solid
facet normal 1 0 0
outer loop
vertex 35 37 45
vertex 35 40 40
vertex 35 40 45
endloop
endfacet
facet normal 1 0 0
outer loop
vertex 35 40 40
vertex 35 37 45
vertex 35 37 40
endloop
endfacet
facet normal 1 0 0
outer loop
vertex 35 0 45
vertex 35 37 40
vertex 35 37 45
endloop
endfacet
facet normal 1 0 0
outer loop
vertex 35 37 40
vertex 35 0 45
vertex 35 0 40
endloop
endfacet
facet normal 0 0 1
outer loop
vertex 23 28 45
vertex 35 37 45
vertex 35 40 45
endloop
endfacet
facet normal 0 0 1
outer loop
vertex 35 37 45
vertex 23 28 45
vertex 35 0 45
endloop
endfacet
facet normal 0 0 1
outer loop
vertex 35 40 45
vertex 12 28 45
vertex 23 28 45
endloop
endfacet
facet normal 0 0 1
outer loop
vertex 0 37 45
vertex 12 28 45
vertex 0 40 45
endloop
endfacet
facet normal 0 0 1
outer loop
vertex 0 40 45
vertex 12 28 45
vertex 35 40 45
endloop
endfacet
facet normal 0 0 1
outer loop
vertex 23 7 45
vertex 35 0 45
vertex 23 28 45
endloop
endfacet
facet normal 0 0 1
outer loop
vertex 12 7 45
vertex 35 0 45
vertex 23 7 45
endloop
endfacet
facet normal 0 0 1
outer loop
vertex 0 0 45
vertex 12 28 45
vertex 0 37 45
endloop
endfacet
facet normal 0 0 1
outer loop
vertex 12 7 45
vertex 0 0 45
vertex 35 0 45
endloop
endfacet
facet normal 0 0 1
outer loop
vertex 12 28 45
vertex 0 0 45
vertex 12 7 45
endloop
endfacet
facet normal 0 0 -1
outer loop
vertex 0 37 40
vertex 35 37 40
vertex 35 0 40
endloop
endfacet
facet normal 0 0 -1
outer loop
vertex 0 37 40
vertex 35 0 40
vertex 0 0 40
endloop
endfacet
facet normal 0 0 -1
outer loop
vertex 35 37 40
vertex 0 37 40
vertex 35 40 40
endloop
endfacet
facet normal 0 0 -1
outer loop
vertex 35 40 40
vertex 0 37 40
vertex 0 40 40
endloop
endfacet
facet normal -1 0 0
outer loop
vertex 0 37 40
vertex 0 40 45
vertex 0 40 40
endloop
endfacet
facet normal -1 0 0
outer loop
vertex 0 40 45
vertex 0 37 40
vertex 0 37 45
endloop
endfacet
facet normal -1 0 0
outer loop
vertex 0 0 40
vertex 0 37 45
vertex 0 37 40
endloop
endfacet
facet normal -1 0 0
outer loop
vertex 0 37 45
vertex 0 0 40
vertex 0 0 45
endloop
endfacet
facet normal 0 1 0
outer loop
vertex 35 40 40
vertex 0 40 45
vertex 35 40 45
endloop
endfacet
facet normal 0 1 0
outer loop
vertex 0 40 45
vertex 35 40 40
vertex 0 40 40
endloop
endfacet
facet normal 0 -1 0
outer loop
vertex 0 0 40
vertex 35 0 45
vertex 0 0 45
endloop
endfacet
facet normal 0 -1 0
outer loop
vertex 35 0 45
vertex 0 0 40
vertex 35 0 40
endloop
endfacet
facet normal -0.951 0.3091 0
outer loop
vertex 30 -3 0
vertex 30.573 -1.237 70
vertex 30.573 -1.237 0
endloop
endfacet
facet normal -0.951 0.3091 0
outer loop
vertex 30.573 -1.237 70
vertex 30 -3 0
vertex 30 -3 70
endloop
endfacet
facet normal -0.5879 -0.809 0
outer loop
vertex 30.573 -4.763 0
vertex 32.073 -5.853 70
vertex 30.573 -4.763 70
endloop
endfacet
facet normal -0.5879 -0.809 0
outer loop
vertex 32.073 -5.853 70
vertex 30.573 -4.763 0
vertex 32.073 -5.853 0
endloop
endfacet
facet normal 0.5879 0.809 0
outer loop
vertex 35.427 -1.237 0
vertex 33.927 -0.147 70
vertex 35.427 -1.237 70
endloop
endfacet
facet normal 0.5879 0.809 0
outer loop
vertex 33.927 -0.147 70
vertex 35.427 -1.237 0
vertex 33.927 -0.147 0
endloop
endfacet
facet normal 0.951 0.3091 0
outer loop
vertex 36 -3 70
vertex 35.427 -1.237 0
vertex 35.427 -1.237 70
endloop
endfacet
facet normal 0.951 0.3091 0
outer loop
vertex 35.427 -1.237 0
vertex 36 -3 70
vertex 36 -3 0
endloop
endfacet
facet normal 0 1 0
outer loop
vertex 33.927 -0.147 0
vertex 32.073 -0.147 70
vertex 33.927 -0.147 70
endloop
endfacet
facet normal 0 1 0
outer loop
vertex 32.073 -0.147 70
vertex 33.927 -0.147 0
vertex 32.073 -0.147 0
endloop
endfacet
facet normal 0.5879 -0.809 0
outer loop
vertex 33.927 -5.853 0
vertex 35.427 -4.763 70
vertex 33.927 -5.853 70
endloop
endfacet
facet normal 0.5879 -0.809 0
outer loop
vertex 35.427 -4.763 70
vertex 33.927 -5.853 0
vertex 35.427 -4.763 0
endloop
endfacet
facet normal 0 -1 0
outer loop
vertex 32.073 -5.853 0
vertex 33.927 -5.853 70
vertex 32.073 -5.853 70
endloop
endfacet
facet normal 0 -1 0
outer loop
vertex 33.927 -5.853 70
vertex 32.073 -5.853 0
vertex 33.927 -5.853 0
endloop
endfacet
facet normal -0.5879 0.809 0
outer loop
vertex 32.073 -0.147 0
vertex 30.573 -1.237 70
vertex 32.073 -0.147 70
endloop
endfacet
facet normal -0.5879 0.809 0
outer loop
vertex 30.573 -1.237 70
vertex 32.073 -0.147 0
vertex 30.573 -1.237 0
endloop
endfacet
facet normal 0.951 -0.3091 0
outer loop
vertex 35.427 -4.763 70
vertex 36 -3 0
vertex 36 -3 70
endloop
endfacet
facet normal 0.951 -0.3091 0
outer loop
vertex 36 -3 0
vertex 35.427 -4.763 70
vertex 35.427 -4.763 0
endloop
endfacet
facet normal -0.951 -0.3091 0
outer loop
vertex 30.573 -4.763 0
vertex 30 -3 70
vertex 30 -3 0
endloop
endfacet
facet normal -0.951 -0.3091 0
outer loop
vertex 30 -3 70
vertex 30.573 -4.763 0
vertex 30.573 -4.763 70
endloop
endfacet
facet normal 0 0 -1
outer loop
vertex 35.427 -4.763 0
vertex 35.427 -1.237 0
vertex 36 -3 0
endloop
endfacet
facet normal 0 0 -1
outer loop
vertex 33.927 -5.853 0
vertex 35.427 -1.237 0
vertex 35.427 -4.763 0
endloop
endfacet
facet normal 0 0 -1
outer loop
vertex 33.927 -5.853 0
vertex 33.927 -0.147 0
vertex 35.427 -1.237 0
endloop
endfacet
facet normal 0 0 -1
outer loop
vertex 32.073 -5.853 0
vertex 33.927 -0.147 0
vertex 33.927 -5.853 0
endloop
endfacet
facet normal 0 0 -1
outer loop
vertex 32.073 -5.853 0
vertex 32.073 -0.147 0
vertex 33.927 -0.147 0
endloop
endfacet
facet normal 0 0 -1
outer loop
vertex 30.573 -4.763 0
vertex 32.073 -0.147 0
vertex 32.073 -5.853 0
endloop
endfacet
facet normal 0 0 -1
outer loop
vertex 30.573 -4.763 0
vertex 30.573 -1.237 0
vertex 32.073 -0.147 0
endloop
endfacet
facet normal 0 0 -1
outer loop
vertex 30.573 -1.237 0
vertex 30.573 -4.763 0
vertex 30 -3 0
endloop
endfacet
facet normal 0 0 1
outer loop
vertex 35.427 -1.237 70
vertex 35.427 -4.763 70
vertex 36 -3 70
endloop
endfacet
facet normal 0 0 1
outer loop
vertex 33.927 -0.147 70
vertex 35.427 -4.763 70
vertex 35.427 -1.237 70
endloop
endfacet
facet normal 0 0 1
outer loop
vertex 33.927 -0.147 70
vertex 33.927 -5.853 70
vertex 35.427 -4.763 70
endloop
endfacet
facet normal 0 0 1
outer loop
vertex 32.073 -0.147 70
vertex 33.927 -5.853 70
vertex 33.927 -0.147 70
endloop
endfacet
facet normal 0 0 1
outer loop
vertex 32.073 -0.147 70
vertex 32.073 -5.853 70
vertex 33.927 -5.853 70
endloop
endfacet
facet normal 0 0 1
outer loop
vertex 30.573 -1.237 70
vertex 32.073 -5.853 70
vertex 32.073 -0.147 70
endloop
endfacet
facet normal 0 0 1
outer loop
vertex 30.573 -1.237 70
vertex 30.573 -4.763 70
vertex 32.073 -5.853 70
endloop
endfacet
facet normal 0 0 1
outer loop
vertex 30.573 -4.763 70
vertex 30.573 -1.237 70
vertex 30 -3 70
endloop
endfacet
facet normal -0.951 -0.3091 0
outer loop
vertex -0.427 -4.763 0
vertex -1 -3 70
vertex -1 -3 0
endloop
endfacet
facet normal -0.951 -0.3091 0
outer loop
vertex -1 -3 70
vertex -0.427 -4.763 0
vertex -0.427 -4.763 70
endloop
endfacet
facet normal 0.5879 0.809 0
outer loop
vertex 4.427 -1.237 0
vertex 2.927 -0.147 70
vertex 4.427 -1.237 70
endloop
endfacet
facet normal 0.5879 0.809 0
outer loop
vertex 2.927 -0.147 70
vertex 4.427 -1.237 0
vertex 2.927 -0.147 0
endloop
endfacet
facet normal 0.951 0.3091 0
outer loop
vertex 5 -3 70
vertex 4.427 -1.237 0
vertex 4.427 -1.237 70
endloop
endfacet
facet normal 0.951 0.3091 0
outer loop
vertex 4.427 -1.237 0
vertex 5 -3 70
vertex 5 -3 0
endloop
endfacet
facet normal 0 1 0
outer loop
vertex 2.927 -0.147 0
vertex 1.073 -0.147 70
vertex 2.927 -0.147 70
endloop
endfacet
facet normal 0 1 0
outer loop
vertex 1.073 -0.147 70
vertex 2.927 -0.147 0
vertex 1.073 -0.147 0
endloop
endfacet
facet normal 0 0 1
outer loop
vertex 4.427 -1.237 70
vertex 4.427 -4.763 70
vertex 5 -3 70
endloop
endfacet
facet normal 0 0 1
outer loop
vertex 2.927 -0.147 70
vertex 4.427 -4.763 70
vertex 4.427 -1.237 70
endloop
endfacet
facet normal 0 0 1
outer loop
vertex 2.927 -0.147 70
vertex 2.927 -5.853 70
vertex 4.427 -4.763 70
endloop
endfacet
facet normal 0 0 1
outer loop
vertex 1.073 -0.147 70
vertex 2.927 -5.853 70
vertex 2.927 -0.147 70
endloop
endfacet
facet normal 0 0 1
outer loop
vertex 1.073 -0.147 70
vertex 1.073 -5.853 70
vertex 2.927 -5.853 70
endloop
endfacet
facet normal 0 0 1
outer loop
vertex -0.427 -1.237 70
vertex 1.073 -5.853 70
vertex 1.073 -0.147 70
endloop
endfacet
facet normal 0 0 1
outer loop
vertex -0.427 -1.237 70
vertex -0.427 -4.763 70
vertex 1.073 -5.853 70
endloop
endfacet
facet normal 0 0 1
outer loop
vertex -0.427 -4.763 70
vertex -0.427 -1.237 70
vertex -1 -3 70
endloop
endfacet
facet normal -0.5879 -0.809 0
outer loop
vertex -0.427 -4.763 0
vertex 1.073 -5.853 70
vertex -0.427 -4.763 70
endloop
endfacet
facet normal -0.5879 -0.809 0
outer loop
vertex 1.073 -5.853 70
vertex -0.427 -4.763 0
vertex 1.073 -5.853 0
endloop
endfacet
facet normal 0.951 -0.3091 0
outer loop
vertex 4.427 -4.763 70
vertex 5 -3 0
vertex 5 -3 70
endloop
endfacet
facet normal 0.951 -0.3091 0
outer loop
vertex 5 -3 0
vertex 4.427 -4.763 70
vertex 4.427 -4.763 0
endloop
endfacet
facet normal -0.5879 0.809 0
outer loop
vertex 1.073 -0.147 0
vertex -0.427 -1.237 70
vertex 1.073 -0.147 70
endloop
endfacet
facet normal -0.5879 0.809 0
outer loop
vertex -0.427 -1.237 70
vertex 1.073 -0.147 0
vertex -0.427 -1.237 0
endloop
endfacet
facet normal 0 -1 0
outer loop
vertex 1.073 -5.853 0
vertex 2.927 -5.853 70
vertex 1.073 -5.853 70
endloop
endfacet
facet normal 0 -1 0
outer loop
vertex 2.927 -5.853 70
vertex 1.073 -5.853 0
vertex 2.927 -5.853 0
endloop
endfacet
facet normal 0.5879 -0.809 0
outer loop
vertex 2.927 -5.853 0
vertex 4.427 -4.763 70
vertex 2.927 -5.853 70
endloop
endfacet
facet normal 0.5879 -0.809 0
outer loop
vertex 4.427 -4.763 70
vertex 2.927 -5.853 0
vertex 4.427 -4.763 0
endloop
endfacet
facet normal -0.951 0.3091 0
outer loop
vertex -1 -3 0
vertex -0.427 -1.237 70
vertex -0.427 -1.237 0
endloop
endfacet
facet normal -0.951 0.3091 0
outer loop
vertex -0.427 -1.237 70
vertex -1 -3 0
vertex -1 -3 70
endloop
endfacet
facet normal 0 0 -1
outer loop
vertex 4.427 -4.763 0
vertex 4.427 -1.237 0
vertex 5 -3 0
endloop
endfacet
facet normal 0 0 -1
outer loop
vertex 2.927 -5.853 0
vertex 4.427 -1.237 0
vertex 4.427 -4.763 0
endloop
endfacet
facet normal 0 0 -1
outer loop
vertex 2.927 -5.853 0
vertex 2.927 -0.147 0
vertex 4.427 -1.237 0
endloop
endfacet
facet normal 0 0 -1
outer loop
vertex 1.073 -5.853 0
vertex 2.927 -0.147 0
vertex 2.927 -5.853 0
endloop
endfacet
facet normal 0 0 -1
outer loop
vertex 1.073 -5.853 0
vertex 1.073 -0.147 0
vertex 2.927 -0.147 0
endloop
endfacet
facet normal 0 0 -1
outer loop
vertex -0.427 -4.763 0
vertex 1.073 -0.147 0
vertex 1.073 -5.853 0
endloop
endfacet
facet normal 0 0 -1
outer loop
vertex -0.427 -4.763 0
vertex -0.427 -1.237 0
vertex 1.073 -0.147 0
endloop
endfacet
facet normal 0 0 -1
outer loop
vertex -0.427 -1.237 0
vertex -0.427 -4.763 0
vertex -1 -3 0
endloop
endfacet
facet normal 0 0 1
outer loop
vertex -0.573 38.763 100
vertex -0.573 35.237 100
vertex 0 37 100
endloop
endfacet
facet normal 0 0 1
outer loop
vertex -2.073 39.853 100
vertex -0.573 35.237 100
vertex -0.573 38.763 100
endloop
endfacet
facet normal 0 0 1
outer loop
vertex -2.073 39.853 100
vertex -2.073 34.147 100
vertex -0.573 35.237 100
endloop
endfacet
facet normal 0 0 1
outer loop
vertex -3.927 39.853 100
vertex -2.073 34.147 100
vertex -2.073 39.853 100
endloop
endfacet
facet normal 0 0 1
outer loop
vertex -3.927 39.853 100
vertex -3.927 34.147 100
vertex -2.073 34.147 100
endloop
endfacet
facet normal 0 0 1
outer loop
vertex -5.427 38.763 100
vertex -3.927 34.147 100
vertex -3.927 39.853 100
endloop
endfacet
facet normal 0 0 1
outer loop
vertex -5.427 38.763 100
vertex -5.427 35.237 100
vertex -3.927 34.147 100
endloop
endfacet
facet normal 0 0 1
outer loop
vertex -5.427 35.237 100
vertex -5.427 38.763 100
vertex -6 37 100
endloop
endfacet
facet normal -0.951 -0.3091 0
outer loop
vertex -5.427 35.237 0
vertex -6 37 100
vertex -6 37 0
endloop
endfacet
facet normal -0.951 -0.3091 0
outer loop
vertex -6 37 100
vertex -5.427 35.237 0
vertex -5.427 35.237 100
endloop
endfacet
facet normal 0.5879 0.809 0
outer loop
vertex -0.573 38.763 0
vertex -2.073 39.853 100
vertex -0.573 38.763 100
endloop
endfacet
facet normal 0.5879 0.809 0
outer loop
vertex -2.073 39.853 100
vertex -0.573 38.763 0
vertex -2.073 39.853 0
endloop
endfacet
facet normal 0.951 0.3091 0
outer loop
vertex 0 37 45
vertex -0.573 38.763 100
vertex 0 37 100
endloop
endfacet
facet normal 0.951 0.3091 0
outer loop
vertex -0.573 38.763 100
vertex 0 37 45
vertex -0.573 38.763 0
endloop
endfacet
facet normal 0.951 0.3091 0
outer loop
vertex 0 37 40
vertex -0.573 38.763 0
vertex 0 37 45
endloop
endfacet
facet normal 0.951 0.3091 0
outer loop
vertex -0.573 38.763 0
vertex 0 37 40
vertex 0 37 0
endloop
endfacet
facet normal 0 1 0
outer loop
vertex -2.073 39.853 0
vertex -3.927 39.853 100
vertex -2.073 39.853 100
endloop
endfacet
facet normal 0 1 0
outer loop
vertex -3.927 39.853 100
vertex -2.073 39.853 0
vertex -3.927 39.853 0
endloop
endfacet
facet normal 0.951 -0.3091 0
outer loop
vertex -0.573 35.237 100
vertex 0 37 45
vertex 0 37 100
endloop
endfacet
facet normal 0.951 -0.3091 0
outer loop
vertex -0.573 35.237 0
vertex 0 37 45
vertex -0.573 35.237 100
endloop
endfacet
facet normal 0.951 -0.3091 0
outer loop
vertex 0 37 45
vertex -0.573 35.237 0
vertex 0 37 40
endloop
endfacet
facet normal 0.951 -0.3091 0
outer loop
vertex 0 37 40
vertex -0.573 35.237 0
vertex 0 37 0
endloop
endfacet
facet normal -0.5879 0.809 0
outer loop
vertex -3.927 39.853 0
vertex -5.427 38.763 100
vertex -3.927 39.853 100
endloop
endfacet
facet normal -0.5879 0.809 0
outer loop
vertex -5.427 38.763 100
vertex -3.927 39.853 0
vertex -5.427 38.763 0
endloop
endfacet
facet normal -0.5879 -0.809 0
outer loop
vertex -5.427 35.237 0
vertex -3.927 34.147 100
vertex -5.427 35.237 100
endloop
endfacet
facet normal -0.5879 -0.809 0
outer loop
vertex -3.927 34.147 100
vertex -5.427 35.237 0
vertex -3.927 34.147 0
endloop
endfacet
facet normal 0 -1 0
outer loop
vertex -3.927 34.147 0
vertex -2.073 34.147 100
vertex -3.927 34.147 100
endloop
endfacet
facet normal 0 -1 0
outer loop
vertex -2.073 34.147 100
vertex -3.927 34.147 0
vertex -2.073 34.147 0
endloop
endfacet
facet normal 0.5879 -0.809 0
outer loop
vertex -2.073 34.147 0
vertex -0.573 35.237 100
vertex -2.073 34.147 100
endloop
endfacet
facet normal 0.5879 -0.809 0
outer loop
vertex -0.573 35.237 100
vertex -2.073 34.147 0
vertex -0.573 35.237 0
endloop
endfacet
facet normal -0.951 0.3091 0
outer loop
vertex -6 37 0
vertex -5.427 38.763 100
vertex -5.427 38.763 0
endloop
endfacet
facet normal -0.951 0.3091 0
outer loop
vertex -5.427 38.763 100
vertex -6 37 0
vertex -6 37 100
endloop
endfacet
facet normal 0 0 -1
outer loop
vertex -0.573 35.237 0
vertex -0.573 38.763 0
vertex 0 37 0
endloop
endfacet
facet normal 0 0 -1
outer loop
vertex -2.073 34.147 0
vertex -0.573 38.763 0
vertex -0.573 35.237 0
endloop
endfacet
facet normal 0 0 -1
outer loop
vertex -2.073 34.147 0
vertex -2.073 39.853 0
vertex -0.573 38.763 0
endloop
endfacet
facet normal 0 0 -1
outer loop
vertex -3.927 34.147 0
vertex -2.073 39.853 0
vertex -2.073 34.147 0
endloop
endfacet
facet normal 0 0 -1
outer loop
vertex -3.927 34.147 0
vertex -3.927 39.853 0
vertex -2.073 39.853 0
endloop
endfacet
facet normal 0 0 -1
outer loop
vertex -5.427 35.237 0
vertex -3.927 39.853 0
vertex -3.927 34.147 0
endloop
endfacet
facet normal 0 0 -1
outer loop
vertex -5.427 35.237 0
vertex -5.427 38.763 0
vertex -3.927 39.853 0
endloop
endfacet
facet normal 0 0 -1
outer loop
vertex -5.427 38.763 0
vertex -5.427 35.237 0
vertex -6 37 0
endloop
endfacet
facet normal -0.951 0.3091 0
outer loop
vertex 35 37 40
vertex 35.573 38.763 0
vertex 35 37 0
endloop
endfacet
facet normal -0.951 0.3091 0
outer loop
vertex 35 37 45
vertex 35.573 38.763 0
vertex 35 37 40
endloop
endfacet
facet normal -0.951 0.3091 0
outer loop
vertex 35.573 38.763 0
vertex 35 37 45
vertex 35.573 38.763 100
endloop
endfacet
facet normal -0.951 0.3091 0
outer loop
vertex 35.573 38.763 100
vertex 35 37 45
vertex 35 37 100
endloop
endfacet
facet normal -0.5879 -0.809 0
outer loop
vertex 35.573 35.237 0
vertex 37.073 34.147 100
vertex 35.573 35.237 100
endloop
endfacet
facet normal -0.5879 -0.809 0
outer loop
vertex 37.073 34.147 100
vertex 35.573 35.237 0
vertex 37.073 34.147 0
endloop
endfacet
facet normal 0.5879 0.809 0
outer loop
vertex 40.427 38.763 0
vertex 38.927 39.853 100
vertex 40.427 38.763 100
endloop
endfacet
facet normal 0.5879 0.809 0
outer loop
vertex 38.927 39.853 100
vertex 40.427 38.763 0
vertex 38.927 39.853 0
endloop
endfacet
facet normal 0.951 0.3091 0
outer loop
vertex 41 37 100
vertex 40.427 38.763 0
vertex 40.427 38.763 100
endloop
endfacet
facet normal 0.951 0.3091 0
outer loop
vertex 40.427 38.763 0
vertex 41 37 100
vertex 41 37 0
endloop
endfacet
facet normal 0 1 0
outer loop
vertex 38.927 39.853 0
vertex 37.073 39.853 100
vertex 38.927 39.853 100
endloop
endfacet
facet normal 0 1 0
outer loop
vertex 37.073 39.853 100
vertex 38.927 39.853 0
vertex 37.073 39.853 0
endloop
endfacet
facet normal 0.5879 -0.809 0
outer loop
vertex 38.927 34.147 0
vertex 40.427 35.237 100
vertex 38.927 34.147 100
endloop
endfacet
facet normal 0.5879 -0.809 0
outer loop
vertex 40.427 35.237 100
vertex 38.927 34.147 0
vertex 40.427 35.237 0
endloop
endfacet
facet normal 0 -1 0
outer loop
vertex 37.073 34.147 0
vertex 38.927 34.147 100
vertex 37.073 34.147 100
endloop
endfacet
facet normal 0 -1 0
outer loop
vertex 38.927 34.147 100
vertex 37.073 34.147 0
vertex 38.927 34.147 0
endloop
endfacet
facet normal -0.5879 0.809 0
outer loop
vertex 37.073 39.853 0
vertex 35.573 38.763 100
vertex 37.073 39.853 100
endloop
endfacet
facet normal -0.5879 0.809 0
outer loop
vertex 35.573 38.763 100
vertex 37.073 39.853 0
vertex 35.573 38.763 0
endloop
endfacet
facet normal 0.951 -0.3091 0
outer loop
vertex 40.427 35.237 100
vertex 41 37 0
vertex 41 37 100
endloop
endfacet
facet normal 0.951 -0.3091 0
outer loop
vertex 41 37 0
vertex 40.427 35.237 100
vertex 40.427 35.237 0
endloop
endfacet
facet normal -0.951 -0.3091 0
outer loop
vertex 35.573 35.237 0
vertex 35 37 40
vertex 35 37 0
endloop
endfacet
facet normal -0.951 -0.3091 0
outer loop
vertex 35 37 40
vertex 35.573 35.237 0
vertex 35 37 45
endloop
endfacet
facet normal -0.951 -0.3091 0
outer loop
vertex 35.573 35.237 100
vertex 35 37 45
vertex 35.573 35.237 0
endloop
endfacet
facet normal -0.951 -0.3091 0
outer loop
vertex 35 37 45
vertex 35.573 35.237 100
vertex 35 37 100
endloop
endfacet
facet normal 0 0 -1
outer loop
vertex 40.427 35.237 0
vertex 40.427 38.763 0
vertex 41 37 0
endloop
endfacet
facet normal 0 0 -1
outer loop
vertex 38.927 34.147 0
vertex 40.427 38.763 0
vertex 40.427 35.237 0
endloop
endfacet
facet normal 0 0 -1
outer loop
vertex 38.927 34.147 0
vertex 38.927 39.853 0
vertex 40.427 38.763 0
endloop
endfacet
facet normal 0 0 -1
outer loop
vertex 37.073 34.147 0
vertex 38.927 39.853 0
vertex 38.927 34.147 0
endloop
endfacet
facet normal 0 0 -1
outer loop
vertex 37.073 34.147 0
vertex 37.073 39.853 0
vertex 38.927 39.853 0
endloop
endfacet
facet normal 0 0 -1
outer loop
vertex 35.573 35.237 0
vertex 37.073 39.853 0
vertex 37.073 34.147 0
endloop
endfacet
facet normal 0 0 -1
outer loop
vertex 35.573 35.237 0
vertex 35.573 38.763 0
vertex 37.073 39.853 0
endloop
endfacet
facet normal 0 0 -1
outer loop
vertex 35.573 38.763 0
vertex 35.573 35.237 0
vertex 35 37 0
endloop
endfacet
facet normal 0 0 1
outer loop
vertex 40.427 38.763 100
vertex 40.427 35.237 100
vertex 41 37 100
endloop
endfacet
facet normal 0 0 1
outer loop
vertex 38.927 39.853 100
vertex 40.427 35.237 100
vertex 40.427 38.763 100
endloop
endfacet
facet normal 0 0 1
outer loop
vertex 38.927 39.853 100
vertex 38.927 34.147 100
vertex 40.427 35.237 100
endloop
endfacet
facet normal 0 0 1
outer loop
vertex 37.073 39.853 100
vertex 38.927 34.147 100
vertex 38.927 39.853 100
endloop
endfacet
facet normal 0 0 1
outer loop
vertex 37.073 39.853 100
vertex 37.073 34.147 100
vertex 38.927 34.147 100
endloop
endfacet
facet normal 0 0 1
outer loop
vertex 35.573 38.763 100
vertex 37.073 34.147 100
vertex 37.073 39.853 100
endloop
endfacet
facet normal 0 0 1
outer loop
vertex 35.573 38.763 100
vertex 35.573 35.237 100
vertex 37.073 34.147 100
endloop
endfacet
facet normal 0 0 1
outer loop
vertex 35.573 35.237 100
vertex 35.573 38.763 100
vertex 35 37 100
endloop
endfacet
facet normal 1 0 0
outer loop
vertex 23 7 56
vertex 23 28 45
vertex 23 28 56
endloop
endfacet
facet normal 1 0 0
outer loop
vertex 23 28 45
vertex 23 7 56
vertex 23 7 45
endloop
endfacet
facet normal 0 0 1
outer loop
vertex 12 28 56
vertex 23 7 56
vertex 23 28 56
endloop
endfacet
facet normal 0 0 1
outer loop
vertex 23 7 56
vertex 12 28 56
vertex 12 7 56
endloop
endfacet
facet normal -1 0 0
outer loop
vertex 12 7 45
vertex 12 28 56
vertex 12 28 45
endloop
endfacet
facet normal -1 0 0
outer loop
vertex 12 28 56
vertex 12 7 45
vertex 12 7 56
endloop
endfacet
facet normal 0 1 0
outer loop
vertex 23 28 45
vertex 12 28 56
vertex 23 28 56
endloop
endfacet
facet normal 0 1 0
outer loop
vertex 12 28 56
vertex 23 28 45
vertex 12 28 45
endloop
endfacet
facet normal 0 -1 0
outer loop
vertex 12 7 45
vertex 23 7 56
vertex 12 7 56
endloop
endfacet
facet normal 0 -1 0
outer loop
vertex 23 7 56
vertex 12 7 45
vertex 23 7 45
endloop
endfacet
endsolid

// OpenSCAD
translate ([0,0,40]) cube([35, 40, 5]);
translate([33, -3, 0]) cylinder(70, d=6);
translate([2, -3, 0]) cylinder(70, d=6);
translate([-3, 37, 0]) cylinder(100, d=6);
translate([38, 37, 0]) cylinder(100, d=6);
color("gray") translate([12, 7, 45]) cube([11, 21, 11]);
